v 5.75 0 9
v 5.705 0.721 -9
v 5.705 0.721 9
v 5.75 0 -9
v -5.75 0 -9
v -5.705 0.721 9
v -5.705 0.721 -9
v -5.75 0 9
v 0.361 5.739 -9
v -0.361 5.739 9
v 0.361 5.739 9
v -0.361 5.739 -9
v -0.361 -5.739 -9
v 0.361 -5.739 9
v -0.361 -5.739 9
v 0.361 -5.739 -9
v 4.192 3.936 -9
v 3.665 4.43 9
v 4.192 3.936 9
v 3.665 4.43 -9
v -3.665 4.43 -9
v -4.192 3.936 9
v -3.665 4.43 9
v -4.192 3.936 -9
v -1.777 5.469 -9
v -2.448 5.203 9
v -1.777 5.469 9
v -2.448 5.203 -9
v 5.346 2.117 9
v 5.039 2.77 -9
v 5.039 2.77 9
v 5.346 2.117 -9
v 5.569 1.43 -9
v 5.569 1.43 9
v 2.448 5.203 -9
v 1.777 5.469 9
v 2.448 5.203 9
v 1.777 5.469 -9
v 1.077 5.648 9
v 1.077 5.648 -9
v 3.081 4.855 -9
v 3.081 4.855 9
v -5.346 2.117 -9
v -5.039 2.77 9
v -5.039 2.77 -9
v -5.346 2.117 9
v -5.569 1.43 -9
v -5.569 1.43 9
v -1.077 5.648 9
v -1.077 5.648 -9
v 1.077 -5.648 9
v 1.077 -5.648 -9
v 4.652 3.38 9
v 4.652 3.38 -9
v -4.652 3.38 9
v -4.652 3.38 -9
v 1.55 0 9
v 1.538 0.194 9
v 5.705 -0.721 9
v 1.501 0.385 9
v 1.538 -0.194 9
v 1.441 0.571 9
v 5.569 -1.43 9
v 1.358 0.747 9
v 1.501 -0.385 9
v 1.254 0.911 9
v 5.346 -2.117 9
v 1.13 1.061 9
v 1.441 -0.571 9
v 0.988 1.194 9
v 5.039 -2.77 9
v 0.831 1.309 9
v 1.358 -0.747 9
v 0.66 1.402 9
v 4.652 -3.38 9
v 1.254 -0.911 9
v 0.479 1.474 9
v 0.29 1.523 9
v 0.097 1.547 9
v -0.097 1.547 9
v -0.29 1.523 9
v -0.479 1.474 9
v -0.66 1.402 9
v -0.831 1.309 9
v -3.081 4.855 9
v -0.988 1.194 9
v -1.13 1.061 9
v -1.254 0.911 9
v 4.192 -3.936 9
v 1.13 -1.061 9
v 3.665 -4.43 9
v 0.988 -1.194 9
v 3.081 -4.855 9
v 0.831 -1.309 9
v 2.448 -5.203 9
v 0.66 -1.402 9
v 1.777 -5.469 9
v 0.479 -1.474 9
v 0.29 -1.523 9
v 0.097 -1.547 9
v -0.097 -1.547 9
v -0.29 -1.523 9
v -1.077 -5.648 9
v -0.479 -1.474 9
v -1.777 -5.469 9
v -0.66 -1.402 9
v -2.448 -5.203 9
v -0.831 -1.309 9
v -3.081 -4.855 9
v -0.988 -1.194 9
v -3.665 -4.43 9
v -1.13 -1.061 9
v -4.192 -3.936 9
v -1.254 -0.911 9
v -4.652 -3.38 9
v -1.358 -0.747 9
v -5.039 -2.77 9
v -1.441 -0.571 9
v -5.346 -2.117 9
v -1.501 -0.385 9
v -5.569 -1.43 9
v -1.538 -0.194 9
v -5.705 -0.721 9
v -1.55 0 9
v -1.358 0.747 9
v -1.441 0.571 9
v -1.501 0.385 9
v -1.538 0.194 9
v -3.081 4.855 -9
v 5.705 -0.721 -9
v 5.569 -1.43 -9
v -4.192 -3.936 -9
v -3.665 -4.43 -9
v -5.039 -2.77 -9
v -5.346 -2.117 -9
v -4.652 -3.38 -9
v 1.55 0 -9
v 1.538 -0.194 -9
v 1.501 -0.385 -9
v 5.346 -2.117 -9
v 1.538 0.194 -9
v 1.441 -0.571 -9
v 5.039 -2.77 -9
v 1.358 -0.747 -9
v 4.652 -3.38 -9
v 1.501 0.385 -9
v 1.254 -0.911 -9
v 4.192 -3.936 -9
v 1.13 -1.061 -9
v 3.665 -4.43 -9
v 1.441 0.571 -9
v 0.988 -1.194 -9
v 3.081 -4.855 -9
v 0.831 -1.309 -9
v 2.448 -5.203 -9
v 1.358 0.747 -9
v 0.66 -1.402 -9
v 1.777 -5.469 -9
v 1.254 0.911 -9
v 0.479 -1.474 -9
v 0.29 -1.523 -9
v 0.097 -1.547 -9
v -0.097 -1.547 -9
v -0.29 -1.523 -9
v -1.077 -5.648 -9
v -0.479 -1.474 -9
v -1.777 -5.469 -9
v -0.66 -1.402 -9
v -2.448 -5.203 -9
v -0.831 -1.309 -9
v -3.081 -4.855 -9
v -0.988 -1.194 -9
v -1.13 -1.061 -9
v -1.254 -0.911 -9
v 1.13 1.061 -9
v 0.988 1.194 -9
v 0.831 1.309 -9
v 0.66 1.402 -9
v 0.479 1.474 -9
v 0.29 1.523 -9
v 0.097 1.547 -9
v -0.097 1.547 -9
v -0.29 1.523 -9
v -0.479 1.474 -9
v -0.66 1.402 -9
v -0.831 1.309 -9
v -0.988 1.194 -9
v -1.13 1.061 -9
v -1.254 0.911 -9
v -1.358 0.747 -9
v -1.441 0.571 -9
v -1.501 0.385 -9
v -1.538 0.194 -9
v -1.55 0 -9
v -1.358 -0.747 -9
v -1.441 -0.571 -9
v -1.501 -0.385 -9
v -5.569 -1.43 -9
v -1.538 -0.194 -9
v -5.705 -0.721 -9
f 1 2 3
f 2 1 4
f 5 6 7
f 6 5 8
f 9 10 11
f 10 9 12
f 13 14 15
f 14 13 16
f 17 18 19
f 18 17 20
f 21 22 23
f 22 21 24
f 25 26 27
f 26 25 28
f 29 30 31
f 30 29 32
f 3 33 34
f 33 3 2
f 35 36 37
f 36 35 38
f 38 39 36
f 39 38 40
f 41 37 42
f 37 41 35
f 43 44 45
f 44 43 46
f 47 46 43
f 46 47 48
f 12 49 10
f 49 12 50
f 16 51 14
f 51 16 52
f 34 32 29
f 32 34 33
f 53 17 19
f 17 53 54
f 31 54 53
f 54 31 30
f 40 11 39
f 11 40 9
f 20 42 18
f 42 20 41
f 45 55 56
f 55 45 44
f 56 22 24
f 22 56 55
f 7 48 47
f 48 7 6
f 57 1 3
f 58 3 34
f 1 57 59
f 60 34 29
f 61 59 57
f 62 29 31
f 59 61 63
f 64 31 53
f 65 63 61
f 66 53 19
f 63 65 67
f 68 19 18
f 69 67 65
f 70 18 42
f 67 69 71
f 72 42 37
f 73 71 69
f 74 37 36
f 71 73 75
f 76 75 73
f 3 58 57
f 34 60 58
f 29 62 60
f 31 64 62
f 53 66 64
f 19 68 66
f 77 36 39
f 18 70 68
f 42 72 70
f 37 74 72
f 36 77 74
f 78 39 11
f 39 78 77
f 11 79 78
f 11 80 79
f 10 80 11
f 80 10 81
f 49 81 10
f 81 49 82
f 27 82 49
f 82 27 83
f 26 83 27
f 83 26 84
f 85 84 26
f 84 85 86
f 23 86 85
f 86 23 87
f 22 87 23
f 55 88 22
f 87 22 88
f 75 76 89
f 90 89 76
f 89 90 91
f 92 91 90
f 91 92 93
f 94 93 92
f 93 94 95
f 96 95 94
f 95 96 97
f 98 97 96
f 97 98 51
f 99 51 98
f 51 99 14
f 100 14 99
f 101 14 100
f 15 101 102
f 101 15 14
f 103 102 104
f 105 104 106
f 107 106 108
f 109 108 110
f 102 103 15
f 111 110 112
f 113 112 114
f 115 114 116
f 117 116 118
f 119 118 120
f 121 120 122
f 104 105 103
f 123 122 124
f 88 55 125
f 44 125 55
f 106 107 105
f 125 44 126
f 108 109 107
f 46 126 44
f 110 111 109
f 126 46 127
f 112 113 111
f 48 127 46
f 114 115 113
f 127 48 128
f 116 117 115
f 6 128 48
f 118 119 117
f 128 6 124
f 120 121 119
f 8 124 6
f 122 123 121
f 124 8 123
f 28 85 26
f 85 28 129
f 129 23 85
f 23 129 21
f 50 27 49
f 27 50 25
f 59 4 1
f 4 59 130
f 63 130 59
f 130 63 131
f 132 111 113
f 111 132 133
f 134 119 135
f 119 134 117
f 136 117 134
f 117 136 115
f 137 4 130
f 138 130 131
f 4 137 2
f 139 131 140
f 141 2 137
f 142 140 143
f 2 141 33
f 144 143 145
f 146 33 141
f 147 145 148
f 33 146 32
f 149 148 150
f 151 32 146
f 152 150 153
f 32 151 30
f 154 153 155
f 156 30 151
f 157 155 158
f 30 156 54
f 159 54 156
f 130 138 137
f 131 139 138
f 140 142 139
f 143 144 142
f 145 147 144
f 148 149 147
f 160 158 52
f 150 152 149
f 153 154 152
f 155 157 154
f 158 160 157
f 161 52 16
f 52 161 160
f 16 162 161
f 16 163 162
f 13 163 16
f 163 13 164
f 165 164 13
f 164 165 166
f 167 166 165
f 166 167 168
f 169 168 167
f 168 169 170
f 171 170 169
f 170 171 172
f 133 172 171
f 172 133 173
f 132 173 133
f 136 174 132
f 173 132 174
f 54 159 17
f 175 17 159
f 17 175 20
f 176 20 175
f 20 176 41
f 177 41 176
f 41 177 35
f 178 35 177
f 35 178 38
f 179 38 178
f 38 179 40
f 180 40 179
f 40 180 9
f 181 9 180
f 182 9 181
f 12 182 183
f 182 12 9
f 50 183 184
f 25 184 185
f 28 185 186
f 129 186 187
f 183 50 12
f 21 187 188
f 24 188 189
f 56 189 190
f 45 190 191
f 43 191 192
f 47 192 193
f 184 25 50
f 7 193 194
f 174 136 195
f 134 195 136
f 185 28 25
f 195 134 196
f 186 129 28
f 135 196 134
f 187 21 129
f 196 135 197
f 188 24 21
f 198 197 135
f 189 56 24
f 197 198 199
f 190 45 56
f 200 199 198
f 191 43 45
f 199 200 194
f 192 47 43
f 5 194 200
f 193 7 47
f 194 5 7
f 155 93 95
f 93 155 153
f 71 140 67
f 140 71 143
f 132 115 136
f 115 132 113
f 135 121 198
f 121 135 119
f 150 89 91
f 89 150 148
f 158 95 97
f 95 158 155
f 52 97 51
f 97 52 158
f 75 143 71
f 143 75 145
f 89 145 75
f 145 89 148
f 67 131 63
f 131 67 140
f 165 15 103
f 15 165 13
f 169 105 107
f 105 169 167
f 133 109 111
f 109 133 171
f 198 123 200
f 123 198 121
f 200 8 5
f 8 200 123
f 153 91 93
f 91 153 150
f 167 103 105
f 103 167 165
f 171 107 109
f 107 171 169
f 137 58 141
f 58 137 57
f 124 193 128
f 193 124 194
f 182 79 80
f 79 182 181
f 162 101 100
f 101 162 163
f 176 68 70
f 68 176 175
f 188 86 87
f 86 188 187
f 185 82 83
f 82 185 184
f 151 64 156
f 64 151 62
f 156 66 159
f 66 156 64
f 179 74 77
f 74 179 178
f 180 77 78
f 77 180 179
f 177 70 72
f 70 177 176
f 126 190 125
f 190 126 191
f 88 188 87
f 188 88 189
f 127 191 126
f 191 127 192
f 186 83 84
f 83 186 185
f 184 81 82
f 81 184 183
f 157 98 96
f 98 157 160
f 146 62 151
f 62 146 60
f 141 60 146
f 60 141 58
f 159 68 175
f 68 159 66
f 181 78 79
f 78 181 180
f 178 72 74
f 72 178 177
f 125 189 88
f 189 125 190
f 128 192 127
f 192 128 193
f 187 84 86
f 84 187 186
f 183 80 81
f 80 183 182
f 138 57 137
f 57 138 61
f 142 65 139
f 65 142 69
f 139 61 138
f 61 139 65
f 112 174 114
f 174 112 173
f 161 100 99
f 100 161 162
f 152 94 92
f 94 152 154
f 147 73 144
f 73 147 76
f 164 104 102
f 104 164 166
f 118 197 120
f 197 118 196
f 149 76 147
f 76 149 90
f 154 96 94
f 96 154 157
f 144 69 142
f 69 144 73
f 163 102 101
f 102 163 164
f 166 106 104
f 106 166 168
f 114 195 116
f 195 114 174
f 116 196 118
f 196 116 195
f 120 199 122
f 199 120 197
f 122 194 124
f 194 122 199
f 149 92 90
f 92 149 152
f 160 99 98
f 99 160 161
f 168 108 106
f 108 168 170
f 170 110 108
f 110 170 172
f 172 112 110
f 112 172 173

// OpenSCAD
$fn = 50;


difference() {
	union() {
		translate(v = [0, 0, -9.0000000000]) {
			cylinder(h = 18, r = 5.7500000000);
		}
	}
	union() {
		translate(v = [0, 0, -100.0000000000]) {
			cylinder(h = 200, r = 1.5500000000);
		}
	}
}
